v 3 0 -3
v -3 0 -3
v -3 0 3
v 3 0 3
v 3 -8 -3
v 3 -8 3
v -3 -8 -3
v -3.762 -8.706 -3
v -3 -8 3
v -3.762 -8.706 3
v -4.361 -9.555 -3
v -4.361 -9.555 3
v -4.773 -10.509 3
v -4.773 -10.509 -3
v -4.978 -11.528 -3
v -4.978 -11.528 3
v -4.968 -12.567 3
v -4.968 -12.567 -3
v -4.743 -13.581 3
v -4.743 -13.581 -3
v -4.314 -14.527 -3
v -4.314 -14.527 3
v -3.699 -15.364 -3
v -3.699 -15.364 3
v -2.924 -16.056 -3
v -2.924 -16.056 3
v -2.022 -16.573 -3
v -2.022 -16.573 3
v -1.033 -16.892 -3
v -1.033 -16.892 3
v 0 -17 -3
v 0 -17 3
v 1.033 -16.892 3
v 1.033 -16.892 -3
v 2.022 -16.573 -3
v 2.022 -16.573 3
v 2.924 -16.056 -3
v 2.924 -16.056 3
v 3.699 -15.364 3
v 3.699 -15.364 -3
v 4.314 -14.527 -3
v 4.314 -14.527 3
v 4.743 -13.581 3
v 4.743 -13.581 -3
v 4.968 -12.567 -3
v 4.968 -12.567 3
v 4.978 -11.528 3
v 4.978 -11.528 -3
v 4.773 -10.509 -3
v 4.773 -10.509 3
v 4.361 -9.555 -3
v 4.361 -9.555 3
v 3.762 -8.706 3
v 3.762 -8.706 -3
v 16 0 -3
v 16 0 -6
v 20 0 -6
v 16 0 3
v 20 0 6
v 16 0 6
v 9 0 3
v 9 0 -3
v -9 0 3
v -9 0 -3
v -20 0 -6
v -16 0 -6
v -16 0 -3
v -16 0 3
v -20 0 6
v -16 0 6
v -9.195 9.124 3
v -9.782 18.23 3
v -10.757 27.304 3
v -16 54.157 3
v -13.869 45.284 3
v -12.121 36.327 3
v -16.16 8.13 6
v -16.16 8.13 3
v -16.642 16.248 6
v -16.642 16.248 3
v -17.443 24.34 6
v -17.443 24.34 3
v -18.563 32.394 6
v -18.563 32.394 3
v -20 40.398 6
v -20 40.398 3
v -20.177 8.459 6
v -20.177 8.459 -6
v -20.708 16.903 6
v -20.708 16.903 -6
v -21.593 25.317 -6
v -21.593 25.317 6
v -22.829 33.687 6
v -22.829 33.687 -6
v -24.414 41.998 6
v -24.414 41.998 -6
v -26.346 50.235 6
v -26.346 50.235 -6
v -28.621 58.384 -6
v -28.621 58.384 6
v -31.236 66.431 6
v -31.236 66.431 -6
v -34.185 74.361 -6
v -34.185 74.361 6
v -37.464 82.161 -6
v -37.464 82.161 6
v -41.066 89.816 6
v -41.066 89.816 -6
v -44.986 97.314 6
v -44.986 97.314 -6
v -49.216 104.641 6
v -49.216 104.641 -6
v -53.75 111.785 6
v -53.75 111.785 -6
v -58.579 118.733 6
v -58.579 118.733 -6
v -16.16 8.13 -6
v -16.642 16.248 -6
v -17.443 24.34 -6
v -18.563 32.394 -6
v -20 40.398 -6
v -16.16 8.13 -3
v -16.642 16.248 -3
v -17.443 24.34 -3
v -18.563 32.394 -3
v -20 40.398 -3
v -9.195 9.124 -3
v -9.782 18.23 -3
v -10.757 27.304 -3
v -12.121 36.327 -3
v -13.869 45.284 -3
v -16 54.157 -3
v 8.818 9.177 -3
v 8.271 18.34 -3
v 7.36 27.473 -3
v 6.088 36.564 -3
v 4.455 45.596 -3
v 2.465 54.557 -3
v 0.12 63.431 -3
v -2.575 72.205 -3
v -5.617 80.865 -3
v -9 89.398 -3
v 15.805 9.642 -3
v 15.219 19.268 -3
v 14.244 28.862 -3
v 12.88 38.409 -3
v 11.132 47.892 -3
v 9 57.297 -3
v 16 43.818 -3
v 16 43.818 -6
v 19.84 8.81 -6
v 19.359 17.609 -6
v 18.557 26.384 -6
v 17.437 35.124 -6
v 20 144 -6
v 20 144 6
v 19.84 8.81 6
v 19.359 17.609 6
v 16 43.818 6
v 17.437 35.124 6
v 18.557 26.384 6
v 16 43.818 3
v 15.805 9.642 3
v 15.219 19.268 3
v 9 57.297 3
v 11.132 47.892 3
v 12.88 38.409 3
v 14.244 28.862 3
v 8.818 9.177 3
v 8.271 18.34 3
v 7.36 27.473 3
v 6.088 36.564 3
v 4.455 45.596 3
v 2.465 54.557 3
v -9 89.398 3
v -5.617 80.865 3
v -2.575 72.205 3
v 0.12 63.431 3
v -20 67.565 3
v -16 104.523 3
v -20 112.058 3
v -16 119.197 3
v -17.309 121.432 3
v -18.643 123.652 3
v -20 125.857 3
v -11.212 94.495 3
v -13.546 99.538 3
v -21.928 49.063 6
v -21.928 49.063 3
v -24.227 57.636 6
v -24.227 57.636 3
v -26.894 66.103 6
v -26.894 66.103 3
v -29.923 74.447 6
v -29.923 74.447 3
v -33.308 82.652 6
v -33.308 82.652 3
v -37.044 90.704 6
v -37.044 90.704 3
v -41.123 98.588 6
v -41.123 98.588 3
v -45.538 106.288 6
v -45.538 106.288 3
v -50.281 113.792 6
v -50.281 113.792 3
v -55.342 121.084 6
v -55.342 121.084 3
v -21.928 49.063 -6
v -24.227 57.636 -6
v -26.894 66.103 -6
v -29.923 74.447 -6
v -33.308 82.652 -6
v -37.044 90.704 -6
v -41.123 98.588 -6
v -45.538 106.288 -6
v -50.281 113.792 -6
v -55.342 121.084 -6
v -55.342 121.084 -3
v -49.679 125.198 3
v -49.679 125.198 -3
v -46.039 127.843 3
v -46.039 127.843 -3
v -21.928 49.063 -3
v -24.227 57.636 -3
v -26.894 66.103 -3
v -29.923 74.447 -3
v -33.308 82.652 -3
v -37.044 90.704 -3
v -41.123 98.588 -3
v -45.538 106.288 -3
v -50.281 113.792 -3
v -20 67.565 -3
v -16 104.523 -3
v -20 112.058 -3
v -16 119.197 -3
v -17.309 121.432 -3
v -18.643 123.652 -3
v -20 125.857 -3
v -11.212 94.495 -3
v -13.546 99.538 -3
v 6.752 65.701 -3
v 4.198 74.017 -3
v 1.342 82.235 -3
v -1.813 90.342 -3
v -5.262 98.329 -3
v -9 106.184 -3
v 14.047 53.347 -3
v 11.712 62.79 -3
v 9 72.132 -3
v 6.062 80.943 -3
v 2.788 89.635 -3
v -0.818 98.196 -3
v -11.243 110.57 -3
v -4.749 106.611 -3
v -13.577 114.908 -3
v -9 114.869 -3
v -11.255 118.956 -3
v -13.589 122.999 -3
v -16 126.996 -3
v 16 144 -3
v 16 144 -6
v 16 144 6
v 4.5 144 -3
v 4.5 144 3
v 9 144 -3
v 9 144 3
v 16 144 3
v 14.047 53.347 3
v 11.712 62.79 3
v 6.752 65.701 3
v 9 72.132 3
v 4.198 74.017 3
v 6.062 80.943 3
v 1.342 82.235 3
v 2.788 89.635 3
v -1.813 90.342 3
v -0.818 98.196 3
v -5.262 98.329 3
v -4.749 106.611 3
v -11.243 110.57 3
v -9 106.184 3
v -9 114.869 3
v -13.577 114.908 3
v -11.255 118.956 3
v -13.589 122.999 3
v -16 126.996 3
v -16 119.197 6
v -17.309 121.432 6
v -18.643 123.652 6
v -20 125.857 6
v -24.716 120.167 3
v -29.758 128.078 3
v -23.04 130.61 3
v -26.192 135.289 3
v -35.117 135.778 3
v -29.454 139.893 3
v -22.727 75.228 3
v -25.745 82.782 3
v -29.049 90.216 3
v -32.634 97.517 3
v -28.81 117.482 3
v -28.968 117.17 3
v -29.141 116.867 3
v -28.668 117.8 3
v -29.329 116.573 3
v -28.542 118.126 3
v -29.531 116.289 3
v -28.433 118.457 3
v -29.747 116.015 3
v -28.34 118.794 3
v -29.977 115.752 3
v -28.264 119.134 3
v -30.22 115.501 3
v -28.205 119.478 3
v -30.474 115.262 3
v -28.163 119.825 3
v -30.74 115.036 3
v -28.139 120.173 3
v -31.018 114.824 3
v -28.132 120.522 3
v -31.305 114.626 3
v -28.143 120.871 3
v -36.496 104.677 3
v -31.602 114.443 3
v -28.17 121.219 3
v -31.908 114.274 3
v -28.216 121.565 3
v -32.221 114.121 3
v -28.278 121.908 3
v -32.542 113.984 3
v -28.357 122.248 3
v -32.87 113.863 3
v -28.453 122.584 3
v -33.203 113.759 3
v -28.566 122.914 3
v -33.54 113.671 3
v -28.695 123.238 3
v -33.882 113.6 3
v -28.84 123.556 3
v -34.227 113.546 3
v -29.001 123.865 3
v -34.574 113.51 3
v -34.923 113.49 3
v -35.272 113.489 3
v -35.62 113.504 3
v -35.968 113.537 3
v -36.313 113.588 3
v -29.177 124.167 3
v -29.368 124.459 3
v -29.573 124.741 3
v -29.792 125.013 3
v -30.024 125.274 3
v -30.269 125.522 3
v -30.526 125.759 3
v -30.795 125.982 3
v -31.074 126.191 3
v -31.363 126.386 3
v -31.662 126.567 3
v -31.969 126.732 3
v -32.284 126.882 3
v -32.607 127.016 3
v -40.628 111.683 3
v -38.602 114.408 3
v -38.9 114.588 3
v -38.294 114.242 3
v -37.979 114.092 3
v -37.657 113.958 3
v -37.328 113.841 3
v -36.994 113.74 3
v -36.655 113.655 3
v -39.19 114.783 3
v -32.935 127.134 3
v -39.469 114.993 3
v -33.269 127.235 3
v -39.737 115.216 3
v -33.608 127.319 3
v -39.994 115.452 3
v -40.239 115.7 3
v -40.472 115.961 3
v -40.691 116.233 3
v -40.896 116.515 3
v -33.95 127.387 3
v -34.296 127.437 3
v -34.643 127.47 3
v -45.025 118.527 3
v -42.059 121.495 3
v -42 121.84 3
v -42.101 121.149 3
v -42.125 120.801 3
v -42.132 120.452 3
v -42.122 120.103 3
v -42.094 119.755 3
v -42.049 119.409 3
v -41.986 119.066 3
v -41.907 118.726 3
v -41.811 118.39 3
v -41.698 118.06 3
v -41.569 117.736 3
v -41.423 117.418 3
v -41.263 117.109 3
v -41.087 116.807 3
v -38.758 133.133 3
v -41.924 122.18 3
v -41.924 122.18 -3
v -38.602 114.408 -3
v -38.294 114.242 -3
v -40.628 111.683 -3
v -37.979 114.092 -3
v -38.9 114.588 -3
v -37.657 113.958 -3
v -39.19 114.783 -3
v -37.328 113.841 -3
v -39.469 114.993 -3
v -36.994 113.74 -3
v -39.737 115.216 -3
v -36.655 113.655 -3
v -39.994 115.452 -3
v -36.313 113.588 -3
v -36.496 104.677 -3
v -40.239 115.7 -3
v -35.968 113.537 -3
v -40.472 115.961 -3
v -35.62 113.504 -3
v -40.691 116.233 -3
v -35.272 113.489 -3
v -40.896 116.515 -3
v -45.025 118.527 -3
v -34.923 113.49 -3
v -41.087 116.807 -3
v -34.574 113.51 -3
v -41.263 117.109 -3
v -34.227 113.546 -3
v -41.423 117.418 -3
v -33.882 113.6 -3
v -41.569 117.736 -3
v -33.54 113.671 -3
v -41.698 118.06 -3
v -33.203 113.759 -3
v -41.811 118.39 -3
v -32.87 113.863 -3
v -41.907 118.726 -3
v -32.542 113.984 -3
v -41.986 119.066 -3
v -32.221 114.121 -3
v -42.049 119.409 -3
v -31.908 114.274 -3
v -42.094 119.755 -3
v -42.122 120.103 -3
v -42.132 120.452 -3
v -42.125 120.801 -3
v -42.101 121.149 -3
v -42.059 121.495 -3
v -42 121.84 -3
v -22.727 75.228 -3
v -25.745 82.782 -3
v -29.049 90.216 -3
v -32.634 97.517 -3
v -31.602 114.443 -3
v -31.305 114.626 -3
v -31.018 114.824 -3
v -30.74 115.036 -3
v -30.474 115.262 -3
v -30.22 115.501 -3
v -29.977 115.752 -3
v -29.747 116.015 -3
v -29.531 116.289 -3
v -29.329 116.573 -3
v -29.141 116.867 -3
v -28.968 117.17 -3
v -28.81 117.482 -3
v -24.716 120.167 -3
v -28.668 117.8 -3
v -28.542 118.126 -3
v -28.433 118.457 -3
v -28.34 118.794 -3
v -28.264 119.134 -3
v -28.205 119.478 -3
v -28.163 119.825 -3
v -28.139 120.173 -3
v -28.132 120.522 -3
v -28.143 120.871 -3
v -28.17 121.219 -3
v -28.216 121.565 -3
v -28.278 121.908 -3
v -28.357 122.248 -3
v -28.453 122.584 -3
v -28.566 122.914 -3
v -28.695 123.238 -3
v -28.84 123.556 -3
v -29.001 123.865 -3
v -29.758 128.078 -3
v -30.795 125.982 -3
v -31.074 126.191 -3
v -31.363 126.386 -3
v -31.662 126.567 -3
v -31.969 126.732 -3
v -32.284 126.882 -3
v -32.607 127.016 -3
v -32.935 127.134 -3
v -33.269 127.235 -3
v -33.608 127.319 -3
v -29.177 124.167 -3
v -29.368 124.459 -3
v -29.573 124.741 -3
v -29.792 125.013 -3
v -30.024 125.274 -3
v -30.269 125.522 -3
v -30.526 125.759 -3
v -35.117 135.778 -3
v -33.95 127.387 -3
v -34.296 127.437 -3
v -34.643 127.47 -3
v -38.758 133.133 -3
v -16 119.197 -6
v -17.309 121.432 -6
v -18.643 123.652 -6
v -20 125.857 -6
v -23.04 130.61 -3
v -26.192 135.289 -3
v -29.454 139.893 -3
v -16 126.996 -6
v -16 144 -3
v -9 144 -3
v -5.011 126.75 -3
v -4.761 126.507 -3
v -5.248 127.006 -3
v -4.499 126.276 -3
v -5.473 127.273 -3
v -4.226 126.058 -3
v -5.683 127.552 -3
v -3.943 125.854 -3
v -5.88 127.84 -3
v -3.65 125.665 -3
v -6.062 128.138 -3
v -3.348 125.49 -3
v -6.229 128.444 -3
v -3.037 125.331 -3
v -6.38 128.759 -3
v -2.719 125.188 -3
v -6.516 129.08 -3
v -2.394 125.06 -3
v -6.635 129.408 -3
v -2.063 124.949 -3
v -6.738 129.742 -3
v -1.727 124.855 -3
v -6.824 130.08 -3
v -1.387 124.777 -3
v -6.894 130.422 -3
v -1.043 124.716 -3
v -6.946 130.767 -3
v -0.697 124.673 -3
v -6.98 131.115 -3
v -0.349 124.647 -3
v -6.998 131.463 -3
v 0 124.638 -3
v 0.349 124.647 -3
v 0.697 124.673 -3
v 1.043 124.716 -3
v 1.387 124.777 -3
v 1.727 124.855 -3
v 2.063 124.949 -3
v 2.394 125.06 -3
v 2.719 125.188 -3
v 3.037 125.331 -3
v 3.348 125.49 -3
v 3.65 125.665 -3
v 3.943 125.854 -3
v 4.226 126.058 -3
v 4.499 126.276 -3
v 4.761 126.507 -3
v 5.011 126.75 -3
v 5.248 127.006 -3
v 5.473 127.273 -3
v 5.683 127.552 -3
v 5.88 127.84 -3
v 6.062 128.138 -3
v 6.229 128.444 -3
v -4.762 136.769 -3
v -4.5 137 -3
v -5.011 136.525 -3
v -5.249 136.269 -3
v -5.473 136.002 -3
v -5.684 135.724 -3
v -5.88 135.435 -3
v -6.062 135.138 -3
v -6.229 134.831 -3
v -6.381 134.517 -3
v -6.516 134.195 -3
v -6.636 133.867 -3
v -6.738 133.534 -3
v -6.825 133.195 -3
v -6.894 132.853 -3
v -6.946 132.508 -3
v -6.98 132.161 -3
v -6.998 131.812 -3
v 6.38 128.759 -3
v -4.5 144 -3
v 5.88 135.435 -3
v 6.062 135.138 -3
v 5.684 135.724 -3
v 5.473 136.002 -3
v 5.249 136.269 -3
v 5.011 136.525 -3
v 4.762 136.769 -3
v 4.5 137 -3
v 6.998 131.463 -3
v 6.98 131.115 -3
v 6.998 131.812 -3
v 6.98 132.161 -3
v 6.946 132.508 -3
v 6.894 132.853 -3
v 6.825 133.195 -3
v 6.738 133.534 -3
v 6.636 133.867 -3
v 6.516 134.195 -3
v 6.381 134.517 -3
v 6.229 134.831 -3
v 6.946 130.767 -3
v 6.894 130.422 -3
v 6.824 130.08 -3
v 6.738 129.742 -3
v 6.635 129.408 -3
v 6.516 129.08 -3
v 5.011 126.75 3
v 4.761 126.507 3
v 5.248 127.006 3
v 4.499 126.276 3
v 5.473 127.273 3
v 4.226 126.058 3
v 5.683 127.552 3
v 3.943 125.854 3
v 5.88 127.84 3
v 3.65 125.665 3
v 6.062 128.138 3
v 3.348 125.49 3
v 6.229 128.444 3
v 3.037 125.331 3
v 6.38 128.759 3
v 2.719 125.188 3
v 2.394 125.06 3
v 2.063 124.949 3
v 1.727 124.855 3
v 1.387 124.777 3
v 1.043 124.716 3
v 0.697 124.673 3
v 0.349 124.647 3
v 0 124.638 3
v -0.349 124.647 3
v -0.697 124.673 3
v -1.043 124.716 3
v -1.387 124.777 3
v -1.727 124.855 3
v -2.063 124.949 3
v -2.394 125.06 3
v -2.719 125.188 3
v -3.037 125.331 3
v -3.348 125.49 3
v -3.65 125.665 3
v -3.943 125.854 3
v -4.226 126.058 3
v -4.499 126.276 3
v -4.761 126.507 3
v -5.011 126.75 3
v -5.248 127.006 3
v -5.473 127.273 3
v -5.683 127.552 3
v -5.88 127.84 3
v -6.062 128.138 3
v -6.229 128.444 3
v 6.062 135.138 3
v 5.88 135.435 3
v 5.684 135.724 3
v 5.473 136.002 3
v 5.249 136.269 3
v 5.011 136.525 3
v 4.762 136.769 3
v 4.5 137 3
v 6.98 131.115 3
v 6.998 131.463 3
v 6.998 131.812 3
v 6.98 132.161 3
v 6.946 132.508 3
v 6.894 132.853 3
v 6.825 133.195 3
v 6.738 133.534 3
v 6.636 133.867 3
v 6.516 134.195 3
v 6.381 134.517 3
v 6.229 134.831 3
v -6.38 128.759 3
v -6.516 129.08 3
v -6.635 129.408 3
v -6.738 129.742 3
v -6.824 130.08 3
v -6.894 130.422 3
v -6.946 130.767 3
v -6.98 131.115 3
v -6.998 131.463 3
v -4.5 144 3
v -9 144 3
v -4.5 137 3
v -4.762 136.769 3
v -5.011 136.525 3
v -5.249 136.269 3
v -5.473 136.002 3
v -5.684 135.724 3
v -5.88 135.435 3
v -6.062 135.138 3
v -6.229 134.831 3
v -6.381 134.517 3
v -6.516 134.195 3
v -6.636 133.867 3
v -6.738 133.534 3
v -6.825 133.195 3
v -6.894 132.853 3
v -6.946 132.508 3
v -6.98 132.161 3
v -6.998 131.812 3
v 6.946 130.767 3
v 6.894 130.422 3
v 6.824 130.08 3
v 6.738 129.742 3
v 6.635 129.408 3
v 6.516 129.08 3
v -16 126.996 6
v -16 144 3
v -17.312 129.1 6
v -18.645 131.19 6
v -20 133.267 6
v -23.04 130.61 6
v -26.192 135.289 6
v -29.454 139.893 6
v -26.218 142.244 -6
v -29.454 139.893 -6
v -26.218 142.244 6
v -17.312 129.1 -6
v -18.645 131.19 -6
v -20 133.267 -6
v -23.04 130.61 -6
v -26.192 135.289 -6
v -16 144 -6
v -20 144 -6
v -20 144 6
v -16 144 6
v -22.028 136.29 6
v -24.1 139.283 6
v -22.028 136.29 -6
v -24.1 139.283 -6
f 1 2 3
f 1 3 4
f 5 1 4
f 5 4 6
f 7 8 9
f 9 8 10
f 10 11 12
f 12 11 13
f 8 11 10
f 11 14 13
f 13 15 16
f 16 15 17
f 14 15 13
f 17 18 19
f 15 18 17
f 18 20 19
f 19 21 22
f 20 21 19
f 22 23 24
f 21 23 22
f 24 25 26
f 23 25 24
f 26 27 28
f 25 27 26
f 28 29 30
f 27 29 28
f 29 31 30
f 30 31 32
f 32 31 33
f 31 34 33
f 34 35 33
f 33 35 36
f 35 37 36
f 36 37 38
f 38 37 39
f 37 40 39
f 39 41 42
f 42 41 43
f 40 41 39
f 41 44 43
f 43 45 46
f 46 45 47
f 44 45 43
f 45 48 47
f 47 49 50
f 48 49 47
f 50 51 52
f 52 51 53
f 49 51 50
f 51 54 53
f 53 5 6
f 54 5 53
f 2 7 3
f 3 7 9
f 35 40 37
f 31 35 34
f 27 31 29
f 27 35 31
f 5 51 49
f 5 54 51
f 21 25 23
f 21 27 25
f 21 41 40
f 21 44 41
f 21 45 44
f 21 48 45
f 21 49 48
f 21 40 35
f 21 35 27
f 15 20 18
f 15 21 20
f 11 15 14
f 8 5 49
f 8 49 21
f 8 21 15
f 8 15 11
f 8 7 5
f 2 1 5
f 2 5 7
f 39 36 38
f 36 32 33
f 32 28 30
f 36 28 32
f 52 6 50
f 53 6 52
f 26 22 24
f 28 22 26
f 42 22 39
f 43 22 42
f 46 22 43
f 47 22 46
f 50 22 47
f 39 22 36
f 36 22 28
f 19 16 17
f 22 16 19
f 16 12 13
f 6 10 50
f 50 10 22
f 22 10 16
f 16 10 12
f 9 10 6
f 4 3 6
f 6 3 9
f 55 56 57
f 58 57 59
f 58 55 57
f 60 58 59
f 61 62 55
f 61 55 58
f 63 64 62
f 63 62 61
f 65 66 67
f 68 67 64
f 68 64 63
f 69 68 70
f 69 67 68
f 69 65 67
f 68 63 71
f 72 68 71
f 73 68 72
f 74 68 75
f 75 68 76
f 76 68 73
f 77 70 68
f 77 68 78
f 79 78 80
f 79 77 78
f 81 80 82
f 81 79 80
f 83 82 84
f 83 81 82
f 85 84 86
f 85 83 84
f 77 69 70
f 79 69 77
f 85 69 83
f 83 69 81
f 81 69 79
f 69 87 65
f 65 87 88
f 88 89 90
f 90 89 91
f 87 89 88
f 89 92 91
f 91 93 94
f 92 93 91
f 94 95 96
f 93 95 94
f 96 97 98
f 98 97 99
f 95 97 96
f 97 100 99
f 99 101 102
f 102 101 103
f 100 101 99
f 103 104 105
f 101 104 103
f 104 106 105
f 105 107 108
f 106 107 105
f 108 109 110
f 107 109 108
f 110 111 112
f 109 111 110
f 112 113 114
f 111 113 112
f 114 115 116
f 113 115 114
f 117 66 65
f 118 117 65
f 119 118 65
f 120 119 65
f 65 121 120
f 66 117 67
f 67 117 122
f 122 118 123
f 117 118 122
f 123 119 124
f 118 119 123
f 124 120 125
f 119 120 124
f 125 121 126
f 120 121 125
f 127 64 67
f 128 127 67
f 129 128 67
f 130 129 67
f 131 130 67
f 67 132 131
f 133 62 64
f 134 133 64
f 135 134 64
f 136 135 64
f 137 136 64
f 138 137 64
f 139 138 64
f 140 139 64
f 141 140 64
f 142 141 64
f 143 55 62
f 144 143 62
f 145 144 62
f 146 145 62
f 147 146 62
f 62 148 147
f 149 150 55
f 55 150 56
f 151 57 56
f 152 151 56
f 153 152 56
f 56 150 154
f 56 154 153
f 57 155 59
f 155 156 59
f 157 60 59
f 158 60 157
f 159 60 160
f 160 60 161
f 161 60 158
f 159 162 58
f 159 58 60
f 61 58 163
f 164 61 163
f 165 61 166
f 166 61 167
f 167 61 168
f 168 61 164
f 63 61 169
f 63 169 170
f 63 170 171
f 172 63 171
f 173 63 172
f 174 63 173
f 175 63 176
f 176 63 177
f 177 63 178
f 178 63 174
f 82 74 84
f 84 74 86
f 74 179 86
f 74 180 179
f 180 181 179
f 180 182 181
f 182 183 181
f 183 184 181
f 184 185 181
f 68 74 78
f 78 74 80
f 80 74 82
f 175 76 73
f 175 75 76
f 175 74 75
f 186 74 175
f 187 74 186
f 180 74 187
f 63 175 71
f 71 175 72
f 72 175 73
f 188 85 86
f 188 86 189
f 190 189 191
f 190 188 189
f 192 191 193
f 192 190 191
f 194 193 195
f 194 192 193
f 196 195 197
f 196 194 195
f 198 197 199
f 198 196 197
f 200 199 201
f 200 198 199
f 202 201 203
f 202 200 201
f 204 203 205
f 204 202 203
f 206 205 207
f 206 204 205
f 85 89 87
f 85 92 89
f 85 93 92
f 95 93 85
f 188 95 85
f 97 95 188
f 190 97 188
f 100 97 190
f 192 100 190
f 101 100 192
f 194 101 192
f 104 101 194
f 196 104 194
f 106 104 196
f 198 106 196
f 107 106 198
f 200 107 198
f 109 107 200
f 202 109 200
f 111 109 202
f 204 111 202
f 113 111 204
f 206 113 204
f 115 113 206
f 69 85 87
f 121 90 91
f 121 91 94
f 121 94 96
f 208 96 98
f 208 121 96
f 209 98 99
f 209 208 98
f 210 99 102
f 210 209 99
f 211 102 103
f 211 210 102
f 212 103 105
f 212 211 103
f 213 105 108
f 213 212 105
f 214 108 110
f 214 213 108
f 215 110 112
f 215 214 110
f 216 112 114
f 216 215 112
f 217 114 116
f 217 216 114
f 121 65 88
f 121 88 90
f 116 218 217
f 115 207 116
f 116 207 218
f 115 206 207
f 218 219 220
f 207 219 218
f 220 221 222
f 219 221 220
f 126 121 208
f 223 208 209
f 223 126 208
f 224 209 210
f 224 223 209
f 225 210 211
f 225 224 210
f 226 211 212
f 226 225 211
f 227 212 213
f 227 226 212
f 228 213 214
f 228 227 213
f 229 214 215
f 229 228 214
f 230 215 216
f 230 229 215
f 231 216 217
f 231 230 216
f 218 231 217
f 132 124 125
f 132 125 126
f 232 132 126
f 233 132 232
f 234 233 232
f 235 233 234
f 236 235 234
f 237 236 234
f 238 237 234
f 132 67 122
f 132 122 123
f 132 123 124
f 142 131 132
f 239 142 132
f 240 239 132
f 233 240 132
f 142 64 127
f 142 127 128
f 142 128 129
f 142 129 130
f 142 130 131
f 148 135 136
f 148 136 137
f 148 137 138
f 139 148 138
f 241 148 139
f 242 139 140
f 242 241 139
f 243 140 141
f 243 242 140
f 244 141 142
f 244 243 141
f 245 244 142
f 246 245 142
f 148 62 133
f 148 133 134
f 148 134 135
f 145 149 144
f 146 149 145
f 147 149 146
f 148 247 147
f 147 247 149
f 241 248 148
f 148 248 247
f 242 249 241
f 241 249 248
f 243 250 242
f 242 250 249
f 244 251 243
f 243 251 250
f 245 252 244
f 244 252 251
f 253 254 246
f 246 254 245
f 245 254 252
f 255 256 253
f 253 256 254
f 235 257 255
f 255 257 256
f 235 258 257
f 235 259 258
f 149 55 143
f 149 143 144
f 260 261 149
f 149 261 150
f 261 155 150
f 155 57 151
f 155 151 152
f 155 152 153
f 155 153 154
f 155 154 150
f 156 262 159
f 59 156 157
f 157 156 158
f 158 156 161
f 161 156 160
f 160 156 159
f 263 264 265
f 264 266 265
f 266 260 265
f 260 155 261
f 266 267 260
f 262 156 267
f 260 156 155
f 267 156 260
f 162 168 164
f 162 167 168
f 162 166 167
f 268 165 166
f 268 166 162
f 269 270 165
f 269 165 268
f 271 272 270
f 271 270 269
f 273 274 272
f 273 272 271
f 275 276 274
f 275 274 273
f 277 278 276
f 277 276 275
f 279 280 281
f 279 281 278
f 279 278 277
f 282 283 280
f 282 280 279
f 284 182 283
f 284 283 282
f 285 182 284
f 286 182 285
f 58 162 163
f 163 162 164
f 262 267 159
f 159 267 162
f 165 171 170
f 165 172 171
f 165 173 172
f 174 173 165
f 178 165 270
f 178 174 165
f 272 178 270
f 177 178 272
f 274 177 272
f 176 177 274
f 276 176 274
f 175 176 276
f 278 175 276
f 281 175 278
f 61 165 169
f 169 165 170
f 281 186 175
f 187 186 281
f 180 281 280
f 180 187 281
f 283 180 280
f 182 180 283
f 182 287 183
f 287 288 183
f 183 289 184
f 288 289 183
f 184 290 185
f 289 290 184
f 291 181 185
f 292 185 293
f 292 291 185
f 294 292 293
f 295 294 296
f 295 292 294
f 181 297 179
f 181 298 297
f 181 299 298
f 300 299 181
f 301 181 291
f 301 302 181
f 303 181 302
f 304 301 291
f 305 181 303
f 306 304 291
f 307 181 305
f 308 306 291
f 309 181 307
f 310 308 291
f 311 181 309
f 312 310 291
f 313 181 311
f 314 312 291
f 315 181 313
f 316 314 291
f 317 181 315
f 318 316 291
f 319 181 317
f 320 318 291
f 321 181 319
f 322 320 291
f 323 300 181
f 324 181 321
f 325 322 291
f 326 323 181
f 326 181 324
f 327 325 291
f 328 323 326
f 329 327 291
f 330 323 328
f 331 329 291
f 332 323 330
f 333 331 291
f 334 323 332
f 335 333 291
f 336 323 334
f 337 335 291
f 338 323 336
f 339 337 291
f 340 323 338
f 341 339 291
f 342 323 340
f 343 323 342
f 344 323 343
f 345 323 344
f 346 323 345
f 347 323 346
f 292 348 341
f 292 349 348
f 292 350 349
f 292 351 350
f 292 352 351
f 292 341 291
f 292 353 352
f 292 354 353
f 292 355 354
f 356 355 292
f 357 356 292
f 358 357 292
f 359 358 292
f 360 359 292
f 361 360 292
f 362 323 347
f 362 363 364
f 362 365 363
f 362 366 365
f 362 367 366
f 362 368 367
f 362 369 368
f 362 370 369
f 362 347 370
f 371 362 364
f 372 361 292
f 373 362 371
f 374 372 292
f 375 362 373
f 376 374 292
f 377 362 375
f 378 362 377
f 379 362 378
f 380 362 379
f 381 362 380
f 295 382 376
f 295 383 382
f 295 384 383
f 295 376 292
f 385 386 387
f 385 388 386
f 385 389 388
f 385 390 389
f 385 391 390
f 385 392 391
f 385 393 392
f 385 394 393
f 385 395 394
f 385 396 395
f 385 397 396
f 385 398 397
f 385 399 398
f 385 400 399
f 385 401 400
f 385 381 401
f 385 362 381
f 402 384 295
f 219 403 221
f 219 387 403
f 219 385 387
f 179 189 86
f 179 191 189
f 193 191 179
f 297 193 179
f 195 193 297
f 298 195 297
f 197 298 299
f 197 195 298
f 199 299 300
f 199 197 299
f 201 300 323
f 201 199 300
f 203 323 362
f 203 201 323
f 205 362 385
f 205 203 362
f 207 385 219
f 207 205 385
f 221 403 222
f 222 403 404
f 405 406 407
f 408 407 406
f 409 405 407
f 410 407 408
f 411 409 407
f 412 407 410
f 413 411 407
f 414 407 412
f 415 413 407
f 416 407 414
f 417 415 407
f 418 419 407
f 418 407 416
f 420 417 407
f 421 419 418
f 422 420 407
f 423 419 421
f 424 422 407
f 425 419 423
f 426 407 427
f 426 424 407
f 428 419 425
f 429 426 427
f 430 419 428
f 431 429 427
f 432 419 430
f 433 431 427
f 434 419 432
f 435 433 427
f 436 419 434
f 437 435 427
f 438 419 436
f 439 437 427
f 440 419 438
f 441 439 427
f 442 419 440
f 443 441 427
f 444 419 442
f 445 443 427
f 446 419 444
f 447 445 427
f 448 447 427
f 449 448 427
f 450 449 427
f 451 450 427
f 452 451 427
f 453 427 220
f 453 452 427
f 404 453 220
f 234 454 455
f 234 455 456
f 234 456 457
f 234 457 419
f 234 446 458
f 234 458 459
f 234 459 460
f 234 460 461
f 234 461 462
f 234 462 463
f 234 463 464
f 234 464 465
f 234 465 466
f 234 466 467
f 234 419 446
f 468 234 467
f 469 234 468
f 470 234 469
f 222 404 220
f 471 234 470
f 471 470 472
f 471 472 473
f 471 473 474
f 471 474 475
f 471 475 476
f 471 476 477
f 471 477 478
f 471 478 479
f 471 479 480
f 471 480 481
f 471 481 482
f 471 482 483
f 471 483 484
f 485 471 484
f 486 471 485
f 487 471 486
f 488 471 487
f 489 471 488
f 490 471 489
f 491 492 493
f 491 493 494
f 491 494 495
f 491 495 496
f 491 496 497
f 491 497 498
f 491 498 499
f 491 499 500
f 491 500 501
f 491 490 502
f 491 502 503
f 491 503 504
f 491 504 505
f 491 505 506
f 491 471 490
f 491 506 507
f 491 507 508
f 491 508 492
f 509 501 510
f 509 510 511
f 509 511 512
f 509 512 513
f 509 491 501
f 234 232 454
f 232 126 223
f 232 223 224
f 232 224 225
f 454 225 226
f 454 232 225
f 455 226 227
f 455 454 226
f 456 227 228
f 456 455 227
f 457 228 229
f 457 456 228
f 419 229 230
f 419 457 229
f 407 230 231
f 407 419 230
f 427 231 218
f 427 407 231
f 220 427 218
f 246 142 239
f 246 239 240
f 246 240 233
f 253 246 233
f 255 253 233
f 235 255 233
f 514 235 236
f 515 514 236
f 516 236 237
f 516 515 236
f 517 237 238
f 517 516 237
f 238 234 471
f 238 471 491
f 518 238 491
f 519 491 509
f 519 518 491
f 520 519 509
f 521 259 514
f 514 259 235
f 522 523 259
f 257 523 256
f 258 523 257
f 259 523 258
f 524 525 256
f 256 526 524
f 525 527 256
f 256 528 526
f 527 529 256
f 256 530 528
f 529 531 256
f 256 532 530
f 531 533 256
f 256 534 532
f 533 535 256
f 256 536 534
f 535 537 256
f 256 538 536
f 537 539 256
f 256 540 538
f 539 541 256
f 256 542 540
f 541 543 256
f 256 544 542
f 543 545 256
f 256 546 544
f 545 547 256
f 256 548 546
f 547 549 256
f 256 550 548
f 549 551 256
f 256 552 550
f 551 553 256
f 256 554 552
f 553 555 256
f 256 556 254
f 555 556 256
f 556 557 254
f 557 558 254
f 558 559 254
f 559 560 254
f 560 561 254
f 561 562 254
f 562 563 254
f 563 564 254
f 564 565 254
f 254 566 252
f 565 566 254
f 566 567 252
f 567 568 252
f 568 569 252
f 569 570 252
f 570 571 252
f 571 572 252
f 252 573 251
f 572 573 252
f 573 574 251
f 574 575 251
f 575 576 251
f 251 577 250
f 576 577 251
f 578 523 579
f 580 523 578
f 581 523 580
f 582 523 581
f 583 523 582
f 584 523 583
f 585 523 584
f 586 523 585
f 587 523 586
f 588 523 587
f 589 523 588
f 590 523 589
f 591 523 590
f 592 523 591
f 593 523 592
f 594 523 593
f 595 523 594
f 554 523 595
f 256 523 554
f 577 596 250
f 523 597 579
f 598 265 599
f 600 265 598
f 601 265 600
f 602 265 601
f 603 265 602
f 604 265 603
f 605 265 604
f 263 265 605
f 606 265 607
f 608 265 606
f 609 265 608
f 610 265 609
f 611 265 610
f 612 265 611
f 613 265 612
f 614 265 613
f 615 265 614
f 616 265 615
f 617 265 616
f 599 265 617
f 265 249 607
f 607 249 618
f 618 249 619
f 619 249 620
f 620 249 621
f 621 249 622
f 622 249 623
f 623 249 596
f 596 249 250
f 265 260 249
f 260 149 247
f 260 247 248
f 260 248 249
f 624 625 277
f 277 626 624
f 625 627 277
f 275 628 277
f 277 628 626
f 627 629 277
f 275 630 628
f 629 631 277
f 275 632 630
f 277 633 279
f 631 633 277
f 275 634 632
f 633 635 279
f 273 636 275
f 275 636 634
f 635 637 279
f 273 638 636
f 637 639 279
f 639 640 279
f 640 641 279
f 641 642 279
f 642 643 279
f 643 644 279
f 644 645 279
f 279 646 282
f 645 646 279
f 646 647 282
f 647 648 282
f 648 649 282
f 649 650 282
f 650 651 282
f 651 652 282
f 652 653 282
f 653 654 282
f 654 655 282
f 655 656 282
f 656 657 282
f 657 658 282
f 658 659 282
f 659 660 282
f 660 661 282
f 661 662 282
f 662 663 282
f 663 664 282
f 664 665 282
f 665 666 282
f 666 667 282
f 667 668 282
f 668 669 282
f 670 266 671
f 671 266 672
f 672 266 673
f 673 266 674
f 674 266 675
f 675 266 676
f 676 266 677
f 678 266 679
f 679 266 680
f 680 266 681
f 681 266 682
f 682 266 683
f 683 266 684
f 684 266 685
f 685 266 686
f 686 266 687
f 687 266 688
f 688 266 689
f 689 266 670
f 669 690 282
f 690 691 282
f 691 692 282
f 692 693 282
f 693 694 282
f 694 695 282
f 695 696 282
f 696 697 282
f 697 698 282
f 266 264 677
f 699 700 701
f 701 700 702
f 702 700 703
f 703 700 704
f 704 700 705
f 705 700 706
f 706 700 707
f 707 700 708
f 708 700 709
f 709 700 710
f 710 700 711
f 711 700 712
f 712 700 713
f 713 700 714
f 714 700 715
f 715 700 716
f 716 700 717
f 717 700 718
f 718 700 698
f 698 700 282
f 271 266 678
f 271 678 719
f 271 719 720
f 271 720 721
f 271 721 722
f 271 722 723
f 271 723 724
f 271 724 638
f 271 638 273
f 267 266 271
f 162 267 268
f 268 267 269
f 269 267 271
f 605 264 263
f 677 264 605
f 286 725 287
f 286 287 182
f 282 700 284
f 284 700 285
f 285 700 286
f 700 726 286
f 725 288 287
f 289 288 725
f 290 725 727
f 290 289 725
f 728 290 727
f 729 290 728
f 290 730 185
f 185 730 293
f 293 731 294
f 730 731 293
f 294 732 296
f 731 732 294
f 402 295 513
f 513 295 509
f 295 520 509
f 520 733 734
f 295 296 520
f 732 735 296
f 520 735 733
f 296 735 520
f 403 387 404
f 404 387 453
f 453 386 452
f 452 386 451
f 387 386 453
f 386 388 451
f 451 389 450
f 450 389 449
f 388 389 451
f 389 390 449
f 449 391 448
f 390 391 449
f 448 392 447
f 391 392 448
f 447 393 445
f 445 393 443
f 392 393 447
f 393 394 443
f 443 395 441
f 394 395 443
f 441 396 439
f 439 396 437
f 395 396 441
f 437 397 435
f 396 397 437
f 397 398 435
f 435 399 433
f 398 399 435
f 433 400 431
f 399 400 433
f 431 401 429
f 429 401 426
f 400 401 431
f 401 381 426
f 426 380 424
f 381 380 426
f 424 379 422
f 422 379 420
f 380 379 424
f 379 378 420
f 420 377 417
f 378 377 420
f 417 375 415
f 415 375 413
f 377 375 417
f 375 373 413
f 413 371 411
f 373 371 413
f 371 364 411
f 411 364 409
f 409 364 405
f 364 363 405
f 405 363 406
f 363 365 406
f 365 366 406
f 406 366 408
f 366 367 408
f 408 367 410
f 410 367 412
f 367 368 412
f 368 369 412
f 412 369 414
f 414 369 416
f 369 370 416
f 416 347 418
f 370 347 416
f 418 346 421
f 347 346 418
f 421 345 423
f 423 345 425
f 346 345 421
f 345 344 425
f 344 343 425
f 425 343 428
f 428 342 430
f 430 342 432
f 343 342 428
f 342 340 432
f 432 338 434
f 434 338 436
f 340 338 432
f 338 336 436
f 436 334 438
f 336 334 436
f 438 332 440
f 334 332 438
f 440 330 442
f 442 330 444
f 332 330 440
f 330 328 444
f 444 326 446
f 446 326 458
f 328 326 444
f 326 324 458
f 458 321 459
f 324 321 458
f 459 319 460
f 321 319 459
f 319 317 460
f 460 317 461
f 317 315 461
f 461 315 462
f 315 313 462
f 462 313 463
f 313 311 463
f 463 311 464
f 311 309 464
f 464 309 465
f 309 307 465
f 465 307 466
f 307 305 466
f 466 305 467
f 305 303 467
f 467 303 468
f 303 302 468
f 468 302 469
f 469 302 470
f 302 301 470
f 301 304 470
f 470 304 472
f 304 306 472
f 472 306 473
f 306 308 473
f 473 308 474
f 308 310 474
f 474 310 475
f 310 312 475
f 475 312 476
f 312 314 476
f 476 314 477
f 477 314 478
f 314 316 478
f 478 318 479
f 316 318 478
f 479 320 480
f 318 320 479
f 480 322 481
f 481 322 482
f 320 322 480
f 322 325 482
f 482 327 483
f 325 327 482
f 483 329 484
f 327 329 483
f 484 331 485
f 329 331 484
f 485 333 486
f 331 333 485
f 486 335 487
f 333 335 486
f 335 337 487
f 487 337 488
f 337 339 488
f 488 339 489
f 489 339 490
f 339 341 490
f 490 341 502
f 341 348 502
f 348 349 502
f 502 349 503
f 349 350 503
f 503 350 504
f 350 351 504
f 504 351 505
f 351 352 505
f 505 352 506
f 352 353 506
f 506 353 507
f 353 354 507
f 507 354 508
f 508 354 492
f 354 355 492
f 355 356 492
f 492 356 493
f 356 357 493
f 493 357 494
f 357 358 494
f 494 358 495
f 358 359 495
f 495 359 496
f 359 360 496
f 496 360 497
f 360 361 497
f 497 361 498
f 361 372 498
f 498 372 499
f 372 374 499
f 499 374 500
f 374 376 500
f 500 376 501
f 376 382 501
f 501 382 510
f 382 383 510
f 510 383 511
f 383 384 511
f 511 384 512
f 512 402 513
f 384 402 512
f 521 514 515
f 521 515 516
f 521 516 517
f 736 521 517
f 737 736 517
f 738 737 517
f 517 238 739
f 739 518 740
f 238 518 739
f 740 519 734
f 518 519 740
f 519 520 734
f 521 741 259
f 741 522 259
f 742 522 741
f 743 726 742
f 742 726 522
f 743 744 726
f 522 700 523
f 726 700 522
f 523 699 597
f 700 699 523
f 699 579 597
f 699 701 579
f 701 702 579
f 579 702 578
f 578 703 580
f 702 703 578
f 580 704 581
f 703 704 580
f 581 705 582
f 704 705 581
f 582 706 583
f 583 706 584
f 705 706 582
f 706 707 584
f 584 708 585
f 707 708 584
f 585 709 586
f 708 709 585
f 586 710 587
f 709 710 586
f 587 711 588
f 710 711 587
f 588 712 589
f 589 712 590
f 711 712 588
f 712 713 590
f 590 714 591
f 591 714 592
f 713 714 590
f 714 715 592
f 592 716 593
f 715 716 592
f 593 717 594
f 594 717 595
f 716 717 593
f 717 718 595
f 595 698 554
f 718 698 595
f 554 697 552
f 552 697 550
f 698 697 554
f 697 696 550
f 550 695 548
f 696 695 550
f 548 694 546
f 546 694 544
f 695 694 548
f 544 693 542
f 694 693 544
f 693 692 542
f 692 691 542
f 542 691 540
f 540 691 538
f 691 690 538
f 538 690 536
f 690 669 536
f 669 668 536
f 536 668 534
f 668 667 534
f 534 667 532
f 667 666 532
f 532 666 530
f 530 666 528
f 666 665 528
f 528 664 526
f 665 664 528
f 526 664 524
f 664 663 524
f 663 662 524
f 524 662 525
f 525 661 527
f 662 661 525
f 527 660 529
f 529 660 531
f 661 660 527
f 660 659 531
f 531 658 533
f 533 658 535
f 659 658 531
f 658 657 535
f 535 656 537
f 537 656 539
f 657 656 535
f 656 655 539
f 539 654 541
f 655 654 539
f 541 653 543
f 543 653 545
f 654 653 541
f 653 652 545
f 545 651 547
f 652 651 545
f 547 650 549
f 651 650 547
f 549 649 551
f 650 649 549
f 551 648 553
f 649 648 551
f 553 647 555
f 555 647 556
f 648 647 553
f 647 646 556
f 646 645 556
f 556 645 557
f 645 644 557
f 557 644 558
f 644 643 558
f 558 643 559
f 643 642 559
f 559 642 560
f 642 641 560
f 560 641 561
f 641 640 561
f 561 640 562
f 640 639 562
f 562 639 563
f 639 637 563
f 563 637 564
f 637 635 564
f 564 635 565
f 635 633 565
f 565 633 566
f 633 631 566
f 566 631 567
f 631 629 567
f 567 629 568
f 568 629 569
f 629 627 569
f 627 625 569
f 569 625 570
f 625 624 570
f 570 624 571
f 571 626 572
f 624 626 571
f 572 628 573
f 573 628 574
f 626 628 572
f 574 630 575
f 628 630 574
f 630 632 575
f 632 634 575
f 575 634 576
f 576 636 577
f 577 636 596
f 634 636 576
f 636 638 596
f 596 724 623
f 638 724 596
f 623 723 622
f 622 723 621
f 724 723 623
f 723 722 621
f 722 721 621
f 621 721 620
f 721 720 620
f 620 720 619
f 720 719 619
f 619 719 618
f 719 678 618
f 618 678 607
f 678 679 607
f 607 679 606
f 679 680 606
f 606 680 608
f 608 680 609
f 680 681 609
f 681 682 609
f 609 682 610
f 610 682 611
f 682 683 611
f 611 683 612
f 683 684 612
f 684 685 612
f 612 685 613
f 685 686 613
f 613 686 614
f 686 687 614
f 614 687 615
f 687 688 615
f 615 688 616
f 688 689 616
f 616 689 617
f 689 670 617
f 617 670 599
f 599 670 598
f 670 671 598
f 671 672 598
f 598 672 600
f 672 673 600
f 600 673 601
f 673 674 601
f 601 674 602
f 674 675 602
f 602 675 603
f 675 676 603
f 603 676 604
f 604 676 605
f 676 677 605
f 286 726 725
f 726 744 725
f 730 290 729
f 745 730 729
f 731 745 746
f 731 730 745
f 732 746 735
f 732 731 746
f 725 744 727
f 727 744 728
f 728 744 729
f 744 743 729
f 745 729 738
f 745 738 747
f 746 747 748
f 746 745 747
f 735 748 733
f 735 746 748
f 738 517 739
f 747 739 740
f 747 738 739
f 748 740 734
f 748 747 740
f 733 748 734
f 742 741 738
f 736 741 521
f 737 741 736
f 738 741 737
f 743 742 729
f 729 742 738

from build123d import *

# Parameters (mm, degrees)
SKETCH013_W          = 32
SKETCH013_H          = 3
POCKET_DEPTH         = 6.001
POCKET_DEPTH_BACK    = -6.001
POCKET001_DEPTH      = 6.001
POCKET001_DEPTH_BACK = -6.001
PAD_DEPTH            = 3


with BuildPart() as body:
    # AdditivePipe: sweep along a path in Sketch002
    with BuildLine(Plane.XY) as additivepipe_path:
        ThreePointArc((0, 0), (-10.865453, 68.601773), (-42.398227, 130.488326))
    # Sketch → AdditivePipe (sweep)
    with BuildSketch(Plane.XZ):
        Polygon((-20, 6), (-20, -6), (-16, -6), (-16, -3), (-9, -3), (9, -3), (16, -3), (16, -6), (20, -6), (20, 6), (16, 6), (16, 3), (9, 3), (-9, 3), (-16, 3), (-16, 6), align=None)
    sweep(path=additivepipe_path.line)

    # AdditivePipe001: sweep along a path in Sketch001
    with BuildLine(Plane.XY) as additivepipe001_path:
        Line((0, 0), (0, 144))
    # Sketch → AdditivePipe001 (sweep)
    with BuildSketch(Plane.XZ):
        Polygon((-20, 6), (-20, -6), (-16, -6), (-16, -3), (-9, -3), (9, -3), (16, -3), (16, -6), (20, -6), (20, 6), (16, 6), (16, 3), (9, 3), (-9, 3), (-16, 3), (-16, 6), align=None)
    sweep(path=additivepipe001_path.line)

    # SubtractivePipe: sweep along a path in Sketch002
    with BuildLine(Plane.XY) as subtractivepipe_path:
        ThreePointArc((0, 0), (-10.865453, 68.601773), (-42.398227, 130.488326))
    # Sketch013 (on Face1 of AdditivePipe001) → SubtractivePipe (sweep, cut)
    with BuildSketch(Plane.XZ):
        with Locations((0, 4.5)):
            Rectangle(SKETCH013_W, SKETCH013_H)
    subtractivepipe = sweep(path=subtractivepipe_path.line, mode=Mode.SUBTRACT)

    # SubtractivePipe001: sweep along a path in Sketch001
    with BuildLine(Plane.XY) as subtractivepipe001_path:
        Line((0, 0), (0, 144))
    # Sketch013 (on Face1 of AdditivePipe001) → SubtractivePipe001 (sweep, cut)
    with BuildSketch(Plane.XZ):
        with Locations((0, 4.5)):
            Rectangle(SKETCH013_W, SKETCH013_H)
    subtractivepipe001 = sweep(path=subtractivepipe001_path.line, mode=Mode.SUBTRACT)

    # Mirrored: SubtractivePipe across XY
    add(subtractivepipe.mirror(Plane.XY), mode=Mode.SUBTRACT)

    # Mirrored001: SubtractivePipe001 across XY
    add(subtractivepipe001.mirror(Plane.XY), mode=Mode.SUBTRACT)

    # Sketch015 → Pocket (cut, two sides)
    with BuildSketch(Plane.XY) as pocket_sk:
        with BuildLine():
            Line((-46.038804, 127.843292), (-38.757651, 133.13336))
            Line((-38.757651, 133.13336), (-34.643154, 127.470241))
            ThreePointArc((-41.924307, 122.180173), (-31.017586, 114.824218), (-34.643154, 127.470241))
            Line((-46.038804, 127.843292), (-41.924307, 122.180173))
        make_face()
    extrude(amount=-POCKET_DEPTH, mode=Mode.SUBTRACT)
    extrude(pocket_sk.sketch, amount=-POCKET_DEPTH_BACK, mode=Mode.SUBTRACT)

    # Sketch016 → Pocket001 (cut, two sides)
    with BuildSketch(Plane.XY) as pocket001_sk:
        with BuildLine():
            Line((-4.5, 144), (4.5, 144))
            Line((4.5, 144), (4.5, 137))
            ThreePointArc((-4.5, 137), (0, 124.638097), (4.5, 137))
            Line((-4.5, 144), (-4.5, 137))
        make_face()
    extrude(amount=-POCKET001_DEPTH, mode=Mode.SUBTRACT)
    extrude(pocket001_sk.sketch, amount=-POCKET001_DEPTH_BACK, mode=Mode.SUBTRACT)


with BuildPart() as body001:
    # Sketch008 → Pad (new body, symmetric)
    with BuildSketch(Plane.XY):
        with BuildLine():
            Line((-3, 0), (3, 0))
            Line((3, 0), (3, -8))
            ThreePointArc((-3, -8), (0, -17), (3, -8))
            Line((-3, 0), (-3, -8))
        make_face()
    extrude(amount=PAD_DEPTH, both=True)


solid = Compound([body.part, body001.part])
